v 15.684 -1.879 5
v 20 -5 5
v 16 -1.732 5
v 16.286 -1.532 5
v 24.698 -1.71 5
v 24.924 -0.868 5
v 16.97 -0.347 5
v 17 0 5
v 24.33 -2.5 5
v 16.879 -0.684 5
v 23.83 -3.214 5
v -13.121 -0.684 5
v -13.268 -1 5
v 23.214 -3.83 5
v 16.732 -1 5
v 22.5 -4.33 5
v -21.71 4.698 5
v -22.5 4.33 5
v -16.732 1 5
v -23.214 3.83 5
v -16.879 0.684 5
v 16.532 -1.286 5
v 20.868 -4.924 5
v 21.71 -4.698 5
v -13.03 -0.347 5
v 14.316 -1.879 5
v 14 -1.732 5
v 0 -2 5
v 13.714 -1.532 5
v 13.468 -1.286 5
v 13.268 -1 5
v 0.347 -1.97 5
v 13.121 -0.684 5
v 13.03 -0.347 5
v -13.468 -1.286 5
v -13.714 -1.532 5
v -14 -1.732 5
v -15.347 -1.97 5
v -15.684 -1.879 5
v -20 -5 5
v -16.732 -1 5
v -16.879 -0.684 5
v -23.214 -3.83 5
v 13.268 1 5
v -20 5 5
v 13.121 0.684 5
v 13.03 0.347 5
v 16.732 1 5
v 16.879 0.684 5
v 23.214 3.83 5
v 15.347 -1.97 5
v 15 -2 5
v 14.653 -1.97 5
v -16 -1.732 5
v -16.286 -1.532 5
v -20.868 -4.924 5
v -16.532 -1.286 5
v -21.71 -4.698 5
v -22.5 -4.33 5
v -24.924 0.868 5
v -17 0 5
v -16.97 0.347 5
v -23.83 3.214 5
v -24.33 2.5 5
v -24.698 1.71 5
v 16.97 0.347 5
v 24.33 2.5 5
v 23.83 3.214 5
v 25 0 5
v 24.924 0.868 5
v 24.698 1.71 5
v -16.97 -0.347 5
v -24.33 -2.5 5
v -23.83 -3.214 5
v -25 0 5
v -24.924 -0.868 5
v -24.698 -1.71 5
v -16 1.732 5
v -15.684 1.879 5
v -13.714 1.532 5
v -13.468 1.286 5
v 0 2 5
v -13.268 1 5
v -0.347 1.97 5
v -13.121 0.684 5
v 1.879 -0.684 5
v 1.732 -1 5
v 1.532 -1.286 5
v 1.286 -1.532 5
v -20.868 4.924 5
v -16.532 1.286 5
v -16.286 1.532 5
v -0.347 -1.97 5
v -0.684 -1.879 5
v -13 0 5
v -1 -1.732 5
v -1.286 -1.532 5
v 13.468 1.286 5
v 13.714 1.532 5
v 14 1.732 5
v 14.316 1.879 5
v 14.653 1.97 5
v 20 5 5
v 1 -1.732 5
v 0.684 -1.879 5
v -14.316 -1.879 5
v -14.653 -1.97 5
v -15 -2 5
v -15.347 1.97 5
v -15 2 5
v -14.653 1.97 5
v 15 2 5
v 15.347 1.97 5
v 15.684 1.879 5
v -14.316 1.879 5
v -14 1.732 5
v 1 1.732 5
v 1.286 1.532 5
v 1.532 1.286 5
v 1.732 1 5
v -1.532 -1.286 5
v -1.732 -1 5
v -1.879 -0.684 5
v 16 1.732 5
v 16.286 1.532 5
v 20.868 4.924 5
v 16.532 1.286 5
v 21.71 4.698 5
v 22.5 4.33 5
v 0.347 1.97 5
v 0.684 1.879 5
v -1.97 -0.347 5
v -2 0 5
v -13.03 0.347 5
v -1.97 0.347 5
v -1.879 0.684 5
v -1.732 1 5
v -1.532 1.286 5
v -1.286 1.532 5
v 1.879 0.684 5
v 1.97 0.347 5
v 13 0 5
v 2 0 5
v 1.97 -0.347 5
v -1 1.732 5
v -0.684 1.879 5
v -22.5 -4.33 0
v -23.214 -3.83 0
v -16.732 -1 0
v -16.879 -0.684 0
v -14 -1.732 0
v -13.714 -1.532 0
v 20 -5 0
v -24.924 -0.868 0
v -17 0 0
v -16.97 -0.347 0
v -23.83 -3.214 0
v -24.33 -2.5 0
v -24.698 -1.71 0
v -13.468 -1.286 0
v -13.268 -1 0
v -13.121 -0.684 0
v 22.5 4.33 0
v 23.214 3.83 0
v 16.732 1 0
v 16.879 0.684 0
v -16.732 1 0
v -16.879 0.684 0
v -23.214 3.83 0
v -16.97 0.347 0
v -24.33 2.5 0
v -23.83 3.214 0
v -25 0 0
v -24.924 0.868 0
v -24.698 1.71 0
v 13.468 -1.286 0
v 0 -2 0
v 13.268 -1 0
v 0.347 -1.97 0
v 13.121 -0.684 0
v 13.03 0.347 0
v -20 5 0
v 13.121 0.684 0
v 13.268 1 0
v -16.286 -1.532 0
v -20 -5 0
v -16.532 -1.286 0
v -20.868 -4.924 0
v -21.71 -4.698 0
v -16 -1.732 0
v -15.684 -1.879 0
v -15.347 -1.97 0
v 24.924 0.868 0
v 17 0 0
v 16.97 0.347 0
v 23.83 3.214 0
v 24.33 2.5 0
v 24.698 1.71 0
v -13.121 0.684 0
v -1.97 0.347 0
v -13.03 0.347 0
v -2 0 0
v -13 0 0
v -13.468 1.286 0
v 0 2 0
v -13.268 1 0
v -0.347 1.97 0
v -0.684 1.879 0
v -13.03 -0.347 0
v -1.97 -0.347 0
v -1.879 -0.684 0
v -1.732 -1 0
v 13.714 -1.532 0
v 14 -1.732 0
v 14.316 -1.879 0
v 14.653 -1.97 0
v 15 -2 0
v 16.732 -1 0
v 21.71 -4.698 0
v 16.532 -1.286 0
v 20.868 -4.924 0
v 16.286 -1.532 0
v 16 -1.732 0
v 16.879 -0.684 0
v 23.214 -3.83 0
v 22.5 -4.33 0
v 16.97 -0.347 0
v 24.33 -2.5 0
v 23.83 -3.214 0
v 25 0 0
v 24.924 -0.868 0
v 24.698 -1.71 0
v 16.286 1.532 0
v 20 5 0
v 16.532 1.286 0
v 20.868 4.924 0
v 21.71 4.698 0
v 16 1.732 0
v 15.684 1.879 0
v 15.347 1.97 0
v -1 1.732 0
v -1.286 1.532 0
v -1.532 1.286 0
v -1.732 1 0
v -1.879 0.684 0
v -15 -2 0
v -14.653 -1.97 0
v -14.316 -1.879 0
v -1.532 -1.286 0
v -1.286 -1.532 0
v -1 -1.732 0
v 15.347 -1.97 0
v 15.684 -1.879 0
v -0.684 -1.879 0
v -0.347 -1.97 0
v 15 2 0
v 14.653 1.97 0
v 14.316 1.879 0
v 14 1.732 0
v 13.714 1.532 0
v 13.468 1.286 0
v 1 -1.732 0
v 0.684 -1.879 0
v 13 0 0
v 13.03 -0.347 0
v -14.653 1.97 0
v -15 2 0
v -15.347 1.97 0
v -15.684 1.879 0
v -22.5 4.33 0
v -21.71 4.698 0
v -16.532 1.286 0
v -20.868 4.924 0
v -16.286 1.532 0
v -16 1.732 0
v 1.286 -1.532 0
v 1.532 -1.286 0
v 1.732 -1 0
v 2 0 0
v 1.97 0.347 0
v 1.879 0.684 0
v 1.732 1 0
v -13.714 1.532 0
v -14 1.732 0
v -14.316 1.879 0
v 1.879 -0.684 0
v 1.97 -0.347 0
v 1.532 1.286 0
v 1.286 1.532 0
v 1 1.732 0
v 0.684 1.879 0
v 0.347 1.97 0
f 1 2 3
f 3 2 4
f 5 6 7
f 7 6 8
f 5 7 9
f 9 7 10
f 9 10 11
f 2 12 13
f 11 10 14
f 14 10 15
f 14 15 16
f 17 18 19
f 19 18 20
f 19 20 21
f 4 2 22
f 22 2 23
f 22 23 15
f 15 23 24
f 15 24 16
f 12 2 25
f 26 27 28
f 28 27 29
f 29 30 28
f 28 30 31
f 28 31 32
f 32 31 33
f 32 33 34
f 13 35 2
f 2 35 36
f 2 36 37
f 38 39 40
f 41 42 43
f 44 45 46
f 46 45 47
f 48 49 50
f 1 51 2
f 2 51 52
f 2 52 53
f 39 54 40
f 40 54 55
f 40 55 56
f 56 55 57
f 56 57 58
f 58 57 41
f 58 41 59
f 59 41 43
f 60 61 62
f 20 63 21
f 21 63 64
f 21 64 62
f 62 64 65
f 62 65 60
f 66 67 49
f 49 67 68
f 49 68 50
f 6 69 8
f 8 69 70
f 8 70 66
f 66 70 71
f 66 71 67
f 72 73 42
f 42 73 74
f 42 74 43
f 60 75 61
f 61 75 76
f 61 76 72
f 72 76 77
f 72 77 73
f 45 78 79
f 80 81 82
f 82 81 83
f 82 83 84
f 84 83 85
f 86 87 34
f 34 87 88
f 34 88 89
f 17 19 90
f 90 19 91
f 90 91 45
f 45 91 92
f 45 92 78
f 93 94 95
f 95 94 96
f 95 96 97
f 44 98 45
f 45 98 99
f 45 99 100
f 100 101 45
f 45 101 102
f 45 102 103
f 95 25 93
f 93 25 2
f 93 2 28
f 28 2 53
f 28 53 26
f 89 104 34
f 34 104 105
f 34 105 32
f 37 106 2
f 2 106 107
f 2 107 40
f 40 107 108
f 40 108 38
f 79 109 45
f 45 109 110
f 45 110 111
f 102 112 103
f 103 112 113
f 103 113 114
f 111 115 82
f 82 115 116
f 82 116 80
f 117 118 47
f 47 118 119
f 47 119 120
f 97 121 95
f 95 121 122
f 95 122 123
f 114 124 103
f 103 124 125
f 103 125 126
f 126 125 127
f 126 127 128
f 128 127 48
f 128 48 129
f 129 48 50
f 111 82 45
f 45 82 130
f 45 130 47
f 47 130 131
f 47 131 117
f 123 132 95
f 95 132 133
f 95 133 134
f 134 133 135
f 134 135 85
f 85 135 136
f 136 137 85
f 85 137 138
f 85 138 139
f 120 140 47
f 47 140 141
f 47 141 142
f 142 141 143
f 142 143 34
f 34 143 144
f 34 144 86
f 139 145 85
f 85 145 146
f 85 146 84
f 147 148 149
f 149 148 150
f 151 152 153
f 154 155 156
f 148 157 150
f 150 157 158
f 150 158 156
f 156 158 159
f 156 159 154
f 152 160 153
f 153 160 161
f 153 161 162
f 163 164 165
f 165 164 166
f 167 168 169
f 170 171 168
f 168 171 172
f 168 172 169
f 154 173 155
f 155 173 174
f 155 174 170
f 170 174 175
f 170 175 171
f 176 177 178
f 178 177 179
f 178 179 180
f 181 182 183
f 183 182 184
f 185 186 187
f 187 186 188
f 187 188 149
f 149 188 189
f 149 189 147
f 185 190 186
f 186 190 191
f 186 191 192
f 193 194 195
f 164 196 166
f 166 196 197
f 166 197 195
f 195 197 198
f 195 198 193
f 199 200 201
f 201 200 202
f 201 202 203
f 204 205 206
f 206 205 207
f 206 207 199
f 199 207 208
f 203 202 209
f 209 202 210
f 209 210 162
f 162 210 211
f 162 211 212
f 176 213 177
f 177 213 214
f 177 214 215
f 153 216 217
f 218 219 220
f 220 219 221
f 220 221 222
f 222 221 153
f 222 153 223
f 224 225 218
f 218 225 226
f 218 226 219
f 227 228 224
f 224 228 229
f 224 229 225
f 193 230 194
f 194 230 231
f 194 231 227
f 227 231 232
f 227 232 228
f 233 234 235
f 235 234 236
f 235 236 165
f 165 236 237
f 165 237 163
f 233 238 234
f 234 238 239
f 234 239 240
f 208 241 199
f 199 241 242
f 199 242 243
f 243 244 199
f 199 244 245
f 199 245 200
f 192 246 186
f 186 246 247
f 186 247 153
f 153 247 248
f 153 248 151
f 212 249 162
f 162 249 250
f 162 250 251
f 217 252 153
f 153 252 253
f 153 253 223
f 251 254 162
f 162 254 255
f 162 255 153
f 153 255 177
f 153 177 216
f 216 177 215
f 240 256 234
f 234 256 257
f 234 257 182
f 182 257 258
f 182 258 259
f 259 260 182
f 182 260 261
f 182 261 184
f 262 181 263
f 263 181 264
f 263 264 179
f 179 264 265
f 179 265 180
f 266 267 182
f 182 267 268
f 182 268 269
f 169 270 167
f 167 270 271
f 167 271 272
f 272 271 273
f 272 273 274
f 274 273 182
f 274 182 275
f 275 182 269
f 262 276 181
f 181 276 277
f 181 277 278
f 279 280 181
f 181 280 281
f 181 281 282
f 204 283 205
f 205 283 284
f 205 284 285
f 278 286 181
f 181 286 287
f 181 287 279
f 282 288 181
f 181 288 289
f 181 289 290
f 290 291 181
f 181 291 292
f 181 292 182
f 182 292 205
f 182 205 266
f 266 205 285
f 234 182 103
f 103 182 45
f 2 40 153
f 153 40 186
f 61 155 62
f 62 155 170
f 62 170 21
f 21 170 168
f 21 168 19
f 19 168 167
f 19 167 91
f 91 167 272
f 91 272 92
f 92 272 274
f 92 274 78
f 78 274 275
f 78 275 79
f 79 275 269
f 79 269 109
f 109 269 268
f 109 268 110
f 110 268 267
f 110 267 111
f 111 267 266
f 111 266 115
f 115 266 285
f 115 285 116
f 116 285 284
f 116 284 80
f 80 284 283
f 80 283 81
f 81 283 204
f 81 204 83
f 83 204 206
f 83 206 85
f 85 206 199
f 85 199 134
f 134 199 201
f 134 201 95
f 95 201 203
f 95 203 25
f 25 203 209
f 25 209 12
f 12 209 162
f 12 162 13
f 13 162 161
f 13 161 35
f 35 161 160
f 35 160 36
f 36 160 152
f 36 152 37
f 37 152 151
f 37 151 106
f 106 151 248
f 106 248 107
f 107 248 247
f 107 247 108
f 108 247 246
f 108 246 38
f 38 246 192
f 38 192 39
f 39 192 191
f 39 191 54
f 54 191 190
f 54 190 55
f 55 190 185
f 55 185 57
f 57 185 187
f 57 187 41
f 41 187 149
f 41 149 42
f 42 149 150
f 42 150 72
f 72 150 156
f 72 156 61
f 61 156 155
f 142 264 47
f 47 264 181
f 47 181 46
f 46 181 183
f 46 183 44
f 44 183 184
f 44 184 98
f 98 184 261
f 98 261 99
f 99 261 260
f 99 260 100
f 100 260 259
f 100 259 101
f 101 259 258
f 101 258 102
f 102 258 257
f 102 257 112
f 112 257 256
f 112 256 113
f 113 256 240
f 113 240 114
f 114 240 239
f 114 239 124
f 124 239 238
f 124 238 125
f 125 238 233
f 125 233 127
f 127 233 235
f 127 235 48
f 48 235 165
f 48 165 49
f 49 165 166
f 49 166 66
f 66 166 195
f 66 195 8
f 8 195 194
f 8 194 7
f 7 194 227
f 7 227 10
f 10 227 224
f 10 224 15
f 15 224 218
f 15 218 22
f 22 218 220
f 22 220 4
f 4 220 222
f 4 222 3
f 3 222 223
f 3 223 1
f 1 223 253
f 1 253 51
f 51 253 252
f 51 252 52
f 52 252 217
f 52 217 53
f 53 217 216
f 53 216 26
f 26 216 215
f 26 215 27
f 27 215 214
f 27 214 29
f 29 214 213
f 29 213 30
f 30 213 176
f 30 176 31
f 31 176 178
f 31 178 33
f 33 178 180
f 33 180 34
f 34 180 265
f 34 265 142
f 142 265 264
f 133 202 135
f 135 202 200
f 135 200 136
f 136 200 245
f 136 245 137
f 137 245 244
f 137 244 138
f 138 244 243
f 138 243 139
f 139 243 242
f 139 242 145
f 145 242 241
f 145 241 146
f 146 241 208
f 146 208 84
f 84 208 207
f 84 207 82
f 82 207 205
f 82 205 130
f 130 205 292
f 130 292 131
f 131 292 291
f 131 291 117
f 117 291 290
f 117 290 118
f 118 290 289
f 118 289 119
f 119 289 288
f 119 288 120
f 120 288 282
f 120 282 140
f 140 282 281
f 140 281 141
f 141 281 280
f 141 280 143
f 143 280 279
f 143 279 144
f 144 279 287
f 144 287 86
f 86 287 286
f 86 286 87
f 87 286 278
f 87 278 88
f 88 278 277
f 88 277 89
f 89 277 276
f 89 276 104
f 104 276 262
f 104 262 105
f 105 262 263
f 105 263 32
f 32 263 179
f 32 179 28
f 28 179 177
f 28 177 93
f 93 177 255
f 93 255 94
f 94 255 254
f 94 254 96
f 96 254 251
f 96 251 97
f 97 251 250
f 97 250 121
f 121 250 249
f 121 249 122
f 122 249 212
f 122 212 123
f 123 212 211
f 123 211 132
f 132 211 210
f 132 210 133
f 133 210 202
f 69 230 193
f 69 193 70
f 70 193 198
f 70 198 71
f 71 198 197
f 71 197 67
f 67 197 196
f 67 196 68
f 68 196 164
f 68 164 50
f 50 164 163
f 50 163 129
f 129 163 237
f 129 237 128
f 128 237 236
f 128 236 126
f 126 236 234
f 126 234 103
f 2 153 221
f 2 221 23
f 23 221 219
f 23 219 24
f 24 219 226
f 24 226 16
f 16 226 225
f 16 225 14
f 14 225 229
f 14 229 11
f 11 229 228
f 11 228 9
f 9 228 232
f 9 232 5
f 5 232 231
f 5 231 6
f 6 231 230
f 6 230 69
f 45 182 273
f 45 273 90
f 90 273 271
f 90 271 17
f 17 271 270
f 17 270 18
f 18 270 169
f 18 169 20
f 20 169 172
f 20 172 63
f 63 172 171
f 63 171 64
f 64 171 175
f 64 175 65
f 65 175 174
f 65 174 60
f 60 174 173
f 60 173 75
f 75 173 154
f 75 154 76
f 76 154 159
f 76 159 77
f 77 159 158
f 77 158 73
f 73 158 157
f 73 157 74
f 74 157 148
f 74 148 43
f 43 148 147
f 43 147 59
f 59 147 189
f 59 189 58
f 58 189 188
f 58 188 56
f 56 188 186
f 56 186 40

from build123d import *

# Parameters (mm, degrees)
SKETCH_1_W      = 50
SKETCH_1_H      = 10
SKETCH_1_R      = 2
EXTRUDE_1_DEPTH = 5
FILLET_1_R      = 5


with BuildPart() as part:
    # 草图1 → 凸台-拉伸1 (new body)
    with BuildSketch(Plane.XY):
        Rectangle(SKETCH_1_W, SKETCH_1_H)
        with Locations((-15, 0)):
            Circle(SKETCH_1_R, mode=Mode.SUBTRACT)
        with Locations(Location((15, 0, 0), (0, 0, 180))):
            Circle(SKETCH_1_R, mode=Mode.SUBTRACT)
        Circle(SKETCH_1_R, mode=Mode.SUBTRACT)
    extrude(amount=EXTRUDE_1_DEPTH)

    # 圆角1
    fillet_1_edges = [part.edges().sort_by_distance(p)[0] for p in [
        (25, -5, 2.5),
        (25, 5, 2.5),
        (-25, -5, 2.5),
        (-25, 5, 2.5),
    ]]
    fillet(fillet_1_edges, radius=FILLET_1_R - 0.0001)  # a hair under: the kernel refuses the full size


solid = part.part
